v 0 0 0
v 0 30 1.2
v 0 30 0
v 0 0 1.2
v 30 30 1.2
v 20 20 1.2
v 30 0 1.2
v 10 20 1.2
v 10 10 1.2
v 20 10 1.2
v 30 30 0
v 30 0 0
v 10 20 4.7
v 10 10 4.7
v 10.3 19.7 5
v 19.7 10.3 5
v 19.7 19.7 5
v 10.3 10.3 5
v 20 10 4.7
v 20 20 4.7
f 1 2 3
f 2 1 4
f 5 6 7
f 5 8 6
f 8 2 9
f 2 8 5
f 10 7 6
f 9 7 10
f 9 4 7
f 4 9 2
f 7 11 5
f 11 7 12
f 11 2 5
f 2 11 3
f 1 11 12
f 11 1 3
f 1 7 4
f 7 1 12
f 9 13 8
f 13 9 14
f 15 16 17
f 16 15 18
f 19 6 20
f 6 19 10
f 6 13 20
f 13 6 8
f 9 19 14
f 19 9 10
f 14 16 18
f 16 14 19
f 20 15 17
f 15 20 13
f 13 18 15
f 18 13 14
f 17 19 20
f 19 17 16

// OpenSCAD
// file: ../configuration.scad
/*
	Konfiguracni soubor 3D tiskarny RebeliX X2
	
	Sledujte nas na:		  
			www.RepRap4U.cz
			www.facebook.com/RebeliX.cz
			https://twitter.com/reprap4u
			https://plus.google.com/+Reprap4uCz-3Dtiskarna-RebeliX
*/

/*================ Slic3r nastaveni ==========================*/

// Vyska vrstvy pro tisknuti dilu [mm]
layer_height = 0.3;

// Sirka vytlacovaneho materialu [mm]
extrusion_width = 0.66; //Slic3r->Print Settings->Advanced->Default extrusion width

/*==================== M6 sroub ==============================*/

// Rezerva prumeru hlavy sroubu [mm]
space = 1;

// Prumer hlavy M6 sroubu (pricte se rezerva) [mm]
M6_head_diameter = 10.6+space;
//M6_head_diameter = 12+space;

// Vyska hlavy M6 sroubu (dulezite pro zapusteni hlavy sroubu do plastu) [mm]
M6_head_height = 3.6;
//M6_head_height = 4.5;

// Delka sroubu M6 [mm]
// M6x12
M6_lenght = 12;

/*=================== Nastaveni dilu =========================*/

// Posun Z zakladny
z_base_offset = 11;

// Tloustka rohovych spojek
// 5 mm => sroub M6x14 s podlozkou
// 3 mm => sroub M6x12 s podlozkou
coupler_thickness = 5;

// Prumer 8mm tyce
rod_8mm_d = 8.2;

// Posun drzacku mezi x-motor a x-end
x_holder_position = 6.5;

/*======================== Motory ============================*/

// Delka motoru (ovlivni dily a delky tyci pro osy Z a Y)
//SX17-1003LQFE (doporuceno hlavne na osu Z)
motor_length = 29.5;
//SX17-1003 (doporuceno hlavne na osu Z), SX17-0503LQEF
//motor_length = 34;
//SX17-1005
//motor_length = 40;
//SX17-0905 - zde je jiz problem s velkou vyskou motoru na ose Z - musi se upravit endstop-holder
//motor_length = 48;

/*================ Remeny a remenicky ========================*/

// GT2 
belt_tooth_distance = 2;
belt_tooth_ratio = 0.5;

// T2.5
//belt_tooth_distance = 2.5;
//belt_tooth_ratio = 0.68;
// main file
// RebeliX
//
// profile-cover
// GNU GPL v3
// Martin Neruda <neruda@reprap4u.cz>
// http://www.reprap4u.cz

include <../configuration.scad>

difference(){
	union(){
		cube([30,30,4*layer_height]);
		translate([15-5,15-5,0]) cube([10,10,5]);
	}	
	// Nabeh
	translate([0,15-5,4.7]) rotate([45,0,0]) cube([40,3,3]);
	translate([0,15+5,4.7]) rotate([45,0,0]) cube([40,3,3]);
	translate([15-5,0,4.7]) rotate([45,0,90]) cube([40,3,3]);
	translate([15+5,0,4.7]) rotate([45,0,90]) cube([40,3,3]);
}	
